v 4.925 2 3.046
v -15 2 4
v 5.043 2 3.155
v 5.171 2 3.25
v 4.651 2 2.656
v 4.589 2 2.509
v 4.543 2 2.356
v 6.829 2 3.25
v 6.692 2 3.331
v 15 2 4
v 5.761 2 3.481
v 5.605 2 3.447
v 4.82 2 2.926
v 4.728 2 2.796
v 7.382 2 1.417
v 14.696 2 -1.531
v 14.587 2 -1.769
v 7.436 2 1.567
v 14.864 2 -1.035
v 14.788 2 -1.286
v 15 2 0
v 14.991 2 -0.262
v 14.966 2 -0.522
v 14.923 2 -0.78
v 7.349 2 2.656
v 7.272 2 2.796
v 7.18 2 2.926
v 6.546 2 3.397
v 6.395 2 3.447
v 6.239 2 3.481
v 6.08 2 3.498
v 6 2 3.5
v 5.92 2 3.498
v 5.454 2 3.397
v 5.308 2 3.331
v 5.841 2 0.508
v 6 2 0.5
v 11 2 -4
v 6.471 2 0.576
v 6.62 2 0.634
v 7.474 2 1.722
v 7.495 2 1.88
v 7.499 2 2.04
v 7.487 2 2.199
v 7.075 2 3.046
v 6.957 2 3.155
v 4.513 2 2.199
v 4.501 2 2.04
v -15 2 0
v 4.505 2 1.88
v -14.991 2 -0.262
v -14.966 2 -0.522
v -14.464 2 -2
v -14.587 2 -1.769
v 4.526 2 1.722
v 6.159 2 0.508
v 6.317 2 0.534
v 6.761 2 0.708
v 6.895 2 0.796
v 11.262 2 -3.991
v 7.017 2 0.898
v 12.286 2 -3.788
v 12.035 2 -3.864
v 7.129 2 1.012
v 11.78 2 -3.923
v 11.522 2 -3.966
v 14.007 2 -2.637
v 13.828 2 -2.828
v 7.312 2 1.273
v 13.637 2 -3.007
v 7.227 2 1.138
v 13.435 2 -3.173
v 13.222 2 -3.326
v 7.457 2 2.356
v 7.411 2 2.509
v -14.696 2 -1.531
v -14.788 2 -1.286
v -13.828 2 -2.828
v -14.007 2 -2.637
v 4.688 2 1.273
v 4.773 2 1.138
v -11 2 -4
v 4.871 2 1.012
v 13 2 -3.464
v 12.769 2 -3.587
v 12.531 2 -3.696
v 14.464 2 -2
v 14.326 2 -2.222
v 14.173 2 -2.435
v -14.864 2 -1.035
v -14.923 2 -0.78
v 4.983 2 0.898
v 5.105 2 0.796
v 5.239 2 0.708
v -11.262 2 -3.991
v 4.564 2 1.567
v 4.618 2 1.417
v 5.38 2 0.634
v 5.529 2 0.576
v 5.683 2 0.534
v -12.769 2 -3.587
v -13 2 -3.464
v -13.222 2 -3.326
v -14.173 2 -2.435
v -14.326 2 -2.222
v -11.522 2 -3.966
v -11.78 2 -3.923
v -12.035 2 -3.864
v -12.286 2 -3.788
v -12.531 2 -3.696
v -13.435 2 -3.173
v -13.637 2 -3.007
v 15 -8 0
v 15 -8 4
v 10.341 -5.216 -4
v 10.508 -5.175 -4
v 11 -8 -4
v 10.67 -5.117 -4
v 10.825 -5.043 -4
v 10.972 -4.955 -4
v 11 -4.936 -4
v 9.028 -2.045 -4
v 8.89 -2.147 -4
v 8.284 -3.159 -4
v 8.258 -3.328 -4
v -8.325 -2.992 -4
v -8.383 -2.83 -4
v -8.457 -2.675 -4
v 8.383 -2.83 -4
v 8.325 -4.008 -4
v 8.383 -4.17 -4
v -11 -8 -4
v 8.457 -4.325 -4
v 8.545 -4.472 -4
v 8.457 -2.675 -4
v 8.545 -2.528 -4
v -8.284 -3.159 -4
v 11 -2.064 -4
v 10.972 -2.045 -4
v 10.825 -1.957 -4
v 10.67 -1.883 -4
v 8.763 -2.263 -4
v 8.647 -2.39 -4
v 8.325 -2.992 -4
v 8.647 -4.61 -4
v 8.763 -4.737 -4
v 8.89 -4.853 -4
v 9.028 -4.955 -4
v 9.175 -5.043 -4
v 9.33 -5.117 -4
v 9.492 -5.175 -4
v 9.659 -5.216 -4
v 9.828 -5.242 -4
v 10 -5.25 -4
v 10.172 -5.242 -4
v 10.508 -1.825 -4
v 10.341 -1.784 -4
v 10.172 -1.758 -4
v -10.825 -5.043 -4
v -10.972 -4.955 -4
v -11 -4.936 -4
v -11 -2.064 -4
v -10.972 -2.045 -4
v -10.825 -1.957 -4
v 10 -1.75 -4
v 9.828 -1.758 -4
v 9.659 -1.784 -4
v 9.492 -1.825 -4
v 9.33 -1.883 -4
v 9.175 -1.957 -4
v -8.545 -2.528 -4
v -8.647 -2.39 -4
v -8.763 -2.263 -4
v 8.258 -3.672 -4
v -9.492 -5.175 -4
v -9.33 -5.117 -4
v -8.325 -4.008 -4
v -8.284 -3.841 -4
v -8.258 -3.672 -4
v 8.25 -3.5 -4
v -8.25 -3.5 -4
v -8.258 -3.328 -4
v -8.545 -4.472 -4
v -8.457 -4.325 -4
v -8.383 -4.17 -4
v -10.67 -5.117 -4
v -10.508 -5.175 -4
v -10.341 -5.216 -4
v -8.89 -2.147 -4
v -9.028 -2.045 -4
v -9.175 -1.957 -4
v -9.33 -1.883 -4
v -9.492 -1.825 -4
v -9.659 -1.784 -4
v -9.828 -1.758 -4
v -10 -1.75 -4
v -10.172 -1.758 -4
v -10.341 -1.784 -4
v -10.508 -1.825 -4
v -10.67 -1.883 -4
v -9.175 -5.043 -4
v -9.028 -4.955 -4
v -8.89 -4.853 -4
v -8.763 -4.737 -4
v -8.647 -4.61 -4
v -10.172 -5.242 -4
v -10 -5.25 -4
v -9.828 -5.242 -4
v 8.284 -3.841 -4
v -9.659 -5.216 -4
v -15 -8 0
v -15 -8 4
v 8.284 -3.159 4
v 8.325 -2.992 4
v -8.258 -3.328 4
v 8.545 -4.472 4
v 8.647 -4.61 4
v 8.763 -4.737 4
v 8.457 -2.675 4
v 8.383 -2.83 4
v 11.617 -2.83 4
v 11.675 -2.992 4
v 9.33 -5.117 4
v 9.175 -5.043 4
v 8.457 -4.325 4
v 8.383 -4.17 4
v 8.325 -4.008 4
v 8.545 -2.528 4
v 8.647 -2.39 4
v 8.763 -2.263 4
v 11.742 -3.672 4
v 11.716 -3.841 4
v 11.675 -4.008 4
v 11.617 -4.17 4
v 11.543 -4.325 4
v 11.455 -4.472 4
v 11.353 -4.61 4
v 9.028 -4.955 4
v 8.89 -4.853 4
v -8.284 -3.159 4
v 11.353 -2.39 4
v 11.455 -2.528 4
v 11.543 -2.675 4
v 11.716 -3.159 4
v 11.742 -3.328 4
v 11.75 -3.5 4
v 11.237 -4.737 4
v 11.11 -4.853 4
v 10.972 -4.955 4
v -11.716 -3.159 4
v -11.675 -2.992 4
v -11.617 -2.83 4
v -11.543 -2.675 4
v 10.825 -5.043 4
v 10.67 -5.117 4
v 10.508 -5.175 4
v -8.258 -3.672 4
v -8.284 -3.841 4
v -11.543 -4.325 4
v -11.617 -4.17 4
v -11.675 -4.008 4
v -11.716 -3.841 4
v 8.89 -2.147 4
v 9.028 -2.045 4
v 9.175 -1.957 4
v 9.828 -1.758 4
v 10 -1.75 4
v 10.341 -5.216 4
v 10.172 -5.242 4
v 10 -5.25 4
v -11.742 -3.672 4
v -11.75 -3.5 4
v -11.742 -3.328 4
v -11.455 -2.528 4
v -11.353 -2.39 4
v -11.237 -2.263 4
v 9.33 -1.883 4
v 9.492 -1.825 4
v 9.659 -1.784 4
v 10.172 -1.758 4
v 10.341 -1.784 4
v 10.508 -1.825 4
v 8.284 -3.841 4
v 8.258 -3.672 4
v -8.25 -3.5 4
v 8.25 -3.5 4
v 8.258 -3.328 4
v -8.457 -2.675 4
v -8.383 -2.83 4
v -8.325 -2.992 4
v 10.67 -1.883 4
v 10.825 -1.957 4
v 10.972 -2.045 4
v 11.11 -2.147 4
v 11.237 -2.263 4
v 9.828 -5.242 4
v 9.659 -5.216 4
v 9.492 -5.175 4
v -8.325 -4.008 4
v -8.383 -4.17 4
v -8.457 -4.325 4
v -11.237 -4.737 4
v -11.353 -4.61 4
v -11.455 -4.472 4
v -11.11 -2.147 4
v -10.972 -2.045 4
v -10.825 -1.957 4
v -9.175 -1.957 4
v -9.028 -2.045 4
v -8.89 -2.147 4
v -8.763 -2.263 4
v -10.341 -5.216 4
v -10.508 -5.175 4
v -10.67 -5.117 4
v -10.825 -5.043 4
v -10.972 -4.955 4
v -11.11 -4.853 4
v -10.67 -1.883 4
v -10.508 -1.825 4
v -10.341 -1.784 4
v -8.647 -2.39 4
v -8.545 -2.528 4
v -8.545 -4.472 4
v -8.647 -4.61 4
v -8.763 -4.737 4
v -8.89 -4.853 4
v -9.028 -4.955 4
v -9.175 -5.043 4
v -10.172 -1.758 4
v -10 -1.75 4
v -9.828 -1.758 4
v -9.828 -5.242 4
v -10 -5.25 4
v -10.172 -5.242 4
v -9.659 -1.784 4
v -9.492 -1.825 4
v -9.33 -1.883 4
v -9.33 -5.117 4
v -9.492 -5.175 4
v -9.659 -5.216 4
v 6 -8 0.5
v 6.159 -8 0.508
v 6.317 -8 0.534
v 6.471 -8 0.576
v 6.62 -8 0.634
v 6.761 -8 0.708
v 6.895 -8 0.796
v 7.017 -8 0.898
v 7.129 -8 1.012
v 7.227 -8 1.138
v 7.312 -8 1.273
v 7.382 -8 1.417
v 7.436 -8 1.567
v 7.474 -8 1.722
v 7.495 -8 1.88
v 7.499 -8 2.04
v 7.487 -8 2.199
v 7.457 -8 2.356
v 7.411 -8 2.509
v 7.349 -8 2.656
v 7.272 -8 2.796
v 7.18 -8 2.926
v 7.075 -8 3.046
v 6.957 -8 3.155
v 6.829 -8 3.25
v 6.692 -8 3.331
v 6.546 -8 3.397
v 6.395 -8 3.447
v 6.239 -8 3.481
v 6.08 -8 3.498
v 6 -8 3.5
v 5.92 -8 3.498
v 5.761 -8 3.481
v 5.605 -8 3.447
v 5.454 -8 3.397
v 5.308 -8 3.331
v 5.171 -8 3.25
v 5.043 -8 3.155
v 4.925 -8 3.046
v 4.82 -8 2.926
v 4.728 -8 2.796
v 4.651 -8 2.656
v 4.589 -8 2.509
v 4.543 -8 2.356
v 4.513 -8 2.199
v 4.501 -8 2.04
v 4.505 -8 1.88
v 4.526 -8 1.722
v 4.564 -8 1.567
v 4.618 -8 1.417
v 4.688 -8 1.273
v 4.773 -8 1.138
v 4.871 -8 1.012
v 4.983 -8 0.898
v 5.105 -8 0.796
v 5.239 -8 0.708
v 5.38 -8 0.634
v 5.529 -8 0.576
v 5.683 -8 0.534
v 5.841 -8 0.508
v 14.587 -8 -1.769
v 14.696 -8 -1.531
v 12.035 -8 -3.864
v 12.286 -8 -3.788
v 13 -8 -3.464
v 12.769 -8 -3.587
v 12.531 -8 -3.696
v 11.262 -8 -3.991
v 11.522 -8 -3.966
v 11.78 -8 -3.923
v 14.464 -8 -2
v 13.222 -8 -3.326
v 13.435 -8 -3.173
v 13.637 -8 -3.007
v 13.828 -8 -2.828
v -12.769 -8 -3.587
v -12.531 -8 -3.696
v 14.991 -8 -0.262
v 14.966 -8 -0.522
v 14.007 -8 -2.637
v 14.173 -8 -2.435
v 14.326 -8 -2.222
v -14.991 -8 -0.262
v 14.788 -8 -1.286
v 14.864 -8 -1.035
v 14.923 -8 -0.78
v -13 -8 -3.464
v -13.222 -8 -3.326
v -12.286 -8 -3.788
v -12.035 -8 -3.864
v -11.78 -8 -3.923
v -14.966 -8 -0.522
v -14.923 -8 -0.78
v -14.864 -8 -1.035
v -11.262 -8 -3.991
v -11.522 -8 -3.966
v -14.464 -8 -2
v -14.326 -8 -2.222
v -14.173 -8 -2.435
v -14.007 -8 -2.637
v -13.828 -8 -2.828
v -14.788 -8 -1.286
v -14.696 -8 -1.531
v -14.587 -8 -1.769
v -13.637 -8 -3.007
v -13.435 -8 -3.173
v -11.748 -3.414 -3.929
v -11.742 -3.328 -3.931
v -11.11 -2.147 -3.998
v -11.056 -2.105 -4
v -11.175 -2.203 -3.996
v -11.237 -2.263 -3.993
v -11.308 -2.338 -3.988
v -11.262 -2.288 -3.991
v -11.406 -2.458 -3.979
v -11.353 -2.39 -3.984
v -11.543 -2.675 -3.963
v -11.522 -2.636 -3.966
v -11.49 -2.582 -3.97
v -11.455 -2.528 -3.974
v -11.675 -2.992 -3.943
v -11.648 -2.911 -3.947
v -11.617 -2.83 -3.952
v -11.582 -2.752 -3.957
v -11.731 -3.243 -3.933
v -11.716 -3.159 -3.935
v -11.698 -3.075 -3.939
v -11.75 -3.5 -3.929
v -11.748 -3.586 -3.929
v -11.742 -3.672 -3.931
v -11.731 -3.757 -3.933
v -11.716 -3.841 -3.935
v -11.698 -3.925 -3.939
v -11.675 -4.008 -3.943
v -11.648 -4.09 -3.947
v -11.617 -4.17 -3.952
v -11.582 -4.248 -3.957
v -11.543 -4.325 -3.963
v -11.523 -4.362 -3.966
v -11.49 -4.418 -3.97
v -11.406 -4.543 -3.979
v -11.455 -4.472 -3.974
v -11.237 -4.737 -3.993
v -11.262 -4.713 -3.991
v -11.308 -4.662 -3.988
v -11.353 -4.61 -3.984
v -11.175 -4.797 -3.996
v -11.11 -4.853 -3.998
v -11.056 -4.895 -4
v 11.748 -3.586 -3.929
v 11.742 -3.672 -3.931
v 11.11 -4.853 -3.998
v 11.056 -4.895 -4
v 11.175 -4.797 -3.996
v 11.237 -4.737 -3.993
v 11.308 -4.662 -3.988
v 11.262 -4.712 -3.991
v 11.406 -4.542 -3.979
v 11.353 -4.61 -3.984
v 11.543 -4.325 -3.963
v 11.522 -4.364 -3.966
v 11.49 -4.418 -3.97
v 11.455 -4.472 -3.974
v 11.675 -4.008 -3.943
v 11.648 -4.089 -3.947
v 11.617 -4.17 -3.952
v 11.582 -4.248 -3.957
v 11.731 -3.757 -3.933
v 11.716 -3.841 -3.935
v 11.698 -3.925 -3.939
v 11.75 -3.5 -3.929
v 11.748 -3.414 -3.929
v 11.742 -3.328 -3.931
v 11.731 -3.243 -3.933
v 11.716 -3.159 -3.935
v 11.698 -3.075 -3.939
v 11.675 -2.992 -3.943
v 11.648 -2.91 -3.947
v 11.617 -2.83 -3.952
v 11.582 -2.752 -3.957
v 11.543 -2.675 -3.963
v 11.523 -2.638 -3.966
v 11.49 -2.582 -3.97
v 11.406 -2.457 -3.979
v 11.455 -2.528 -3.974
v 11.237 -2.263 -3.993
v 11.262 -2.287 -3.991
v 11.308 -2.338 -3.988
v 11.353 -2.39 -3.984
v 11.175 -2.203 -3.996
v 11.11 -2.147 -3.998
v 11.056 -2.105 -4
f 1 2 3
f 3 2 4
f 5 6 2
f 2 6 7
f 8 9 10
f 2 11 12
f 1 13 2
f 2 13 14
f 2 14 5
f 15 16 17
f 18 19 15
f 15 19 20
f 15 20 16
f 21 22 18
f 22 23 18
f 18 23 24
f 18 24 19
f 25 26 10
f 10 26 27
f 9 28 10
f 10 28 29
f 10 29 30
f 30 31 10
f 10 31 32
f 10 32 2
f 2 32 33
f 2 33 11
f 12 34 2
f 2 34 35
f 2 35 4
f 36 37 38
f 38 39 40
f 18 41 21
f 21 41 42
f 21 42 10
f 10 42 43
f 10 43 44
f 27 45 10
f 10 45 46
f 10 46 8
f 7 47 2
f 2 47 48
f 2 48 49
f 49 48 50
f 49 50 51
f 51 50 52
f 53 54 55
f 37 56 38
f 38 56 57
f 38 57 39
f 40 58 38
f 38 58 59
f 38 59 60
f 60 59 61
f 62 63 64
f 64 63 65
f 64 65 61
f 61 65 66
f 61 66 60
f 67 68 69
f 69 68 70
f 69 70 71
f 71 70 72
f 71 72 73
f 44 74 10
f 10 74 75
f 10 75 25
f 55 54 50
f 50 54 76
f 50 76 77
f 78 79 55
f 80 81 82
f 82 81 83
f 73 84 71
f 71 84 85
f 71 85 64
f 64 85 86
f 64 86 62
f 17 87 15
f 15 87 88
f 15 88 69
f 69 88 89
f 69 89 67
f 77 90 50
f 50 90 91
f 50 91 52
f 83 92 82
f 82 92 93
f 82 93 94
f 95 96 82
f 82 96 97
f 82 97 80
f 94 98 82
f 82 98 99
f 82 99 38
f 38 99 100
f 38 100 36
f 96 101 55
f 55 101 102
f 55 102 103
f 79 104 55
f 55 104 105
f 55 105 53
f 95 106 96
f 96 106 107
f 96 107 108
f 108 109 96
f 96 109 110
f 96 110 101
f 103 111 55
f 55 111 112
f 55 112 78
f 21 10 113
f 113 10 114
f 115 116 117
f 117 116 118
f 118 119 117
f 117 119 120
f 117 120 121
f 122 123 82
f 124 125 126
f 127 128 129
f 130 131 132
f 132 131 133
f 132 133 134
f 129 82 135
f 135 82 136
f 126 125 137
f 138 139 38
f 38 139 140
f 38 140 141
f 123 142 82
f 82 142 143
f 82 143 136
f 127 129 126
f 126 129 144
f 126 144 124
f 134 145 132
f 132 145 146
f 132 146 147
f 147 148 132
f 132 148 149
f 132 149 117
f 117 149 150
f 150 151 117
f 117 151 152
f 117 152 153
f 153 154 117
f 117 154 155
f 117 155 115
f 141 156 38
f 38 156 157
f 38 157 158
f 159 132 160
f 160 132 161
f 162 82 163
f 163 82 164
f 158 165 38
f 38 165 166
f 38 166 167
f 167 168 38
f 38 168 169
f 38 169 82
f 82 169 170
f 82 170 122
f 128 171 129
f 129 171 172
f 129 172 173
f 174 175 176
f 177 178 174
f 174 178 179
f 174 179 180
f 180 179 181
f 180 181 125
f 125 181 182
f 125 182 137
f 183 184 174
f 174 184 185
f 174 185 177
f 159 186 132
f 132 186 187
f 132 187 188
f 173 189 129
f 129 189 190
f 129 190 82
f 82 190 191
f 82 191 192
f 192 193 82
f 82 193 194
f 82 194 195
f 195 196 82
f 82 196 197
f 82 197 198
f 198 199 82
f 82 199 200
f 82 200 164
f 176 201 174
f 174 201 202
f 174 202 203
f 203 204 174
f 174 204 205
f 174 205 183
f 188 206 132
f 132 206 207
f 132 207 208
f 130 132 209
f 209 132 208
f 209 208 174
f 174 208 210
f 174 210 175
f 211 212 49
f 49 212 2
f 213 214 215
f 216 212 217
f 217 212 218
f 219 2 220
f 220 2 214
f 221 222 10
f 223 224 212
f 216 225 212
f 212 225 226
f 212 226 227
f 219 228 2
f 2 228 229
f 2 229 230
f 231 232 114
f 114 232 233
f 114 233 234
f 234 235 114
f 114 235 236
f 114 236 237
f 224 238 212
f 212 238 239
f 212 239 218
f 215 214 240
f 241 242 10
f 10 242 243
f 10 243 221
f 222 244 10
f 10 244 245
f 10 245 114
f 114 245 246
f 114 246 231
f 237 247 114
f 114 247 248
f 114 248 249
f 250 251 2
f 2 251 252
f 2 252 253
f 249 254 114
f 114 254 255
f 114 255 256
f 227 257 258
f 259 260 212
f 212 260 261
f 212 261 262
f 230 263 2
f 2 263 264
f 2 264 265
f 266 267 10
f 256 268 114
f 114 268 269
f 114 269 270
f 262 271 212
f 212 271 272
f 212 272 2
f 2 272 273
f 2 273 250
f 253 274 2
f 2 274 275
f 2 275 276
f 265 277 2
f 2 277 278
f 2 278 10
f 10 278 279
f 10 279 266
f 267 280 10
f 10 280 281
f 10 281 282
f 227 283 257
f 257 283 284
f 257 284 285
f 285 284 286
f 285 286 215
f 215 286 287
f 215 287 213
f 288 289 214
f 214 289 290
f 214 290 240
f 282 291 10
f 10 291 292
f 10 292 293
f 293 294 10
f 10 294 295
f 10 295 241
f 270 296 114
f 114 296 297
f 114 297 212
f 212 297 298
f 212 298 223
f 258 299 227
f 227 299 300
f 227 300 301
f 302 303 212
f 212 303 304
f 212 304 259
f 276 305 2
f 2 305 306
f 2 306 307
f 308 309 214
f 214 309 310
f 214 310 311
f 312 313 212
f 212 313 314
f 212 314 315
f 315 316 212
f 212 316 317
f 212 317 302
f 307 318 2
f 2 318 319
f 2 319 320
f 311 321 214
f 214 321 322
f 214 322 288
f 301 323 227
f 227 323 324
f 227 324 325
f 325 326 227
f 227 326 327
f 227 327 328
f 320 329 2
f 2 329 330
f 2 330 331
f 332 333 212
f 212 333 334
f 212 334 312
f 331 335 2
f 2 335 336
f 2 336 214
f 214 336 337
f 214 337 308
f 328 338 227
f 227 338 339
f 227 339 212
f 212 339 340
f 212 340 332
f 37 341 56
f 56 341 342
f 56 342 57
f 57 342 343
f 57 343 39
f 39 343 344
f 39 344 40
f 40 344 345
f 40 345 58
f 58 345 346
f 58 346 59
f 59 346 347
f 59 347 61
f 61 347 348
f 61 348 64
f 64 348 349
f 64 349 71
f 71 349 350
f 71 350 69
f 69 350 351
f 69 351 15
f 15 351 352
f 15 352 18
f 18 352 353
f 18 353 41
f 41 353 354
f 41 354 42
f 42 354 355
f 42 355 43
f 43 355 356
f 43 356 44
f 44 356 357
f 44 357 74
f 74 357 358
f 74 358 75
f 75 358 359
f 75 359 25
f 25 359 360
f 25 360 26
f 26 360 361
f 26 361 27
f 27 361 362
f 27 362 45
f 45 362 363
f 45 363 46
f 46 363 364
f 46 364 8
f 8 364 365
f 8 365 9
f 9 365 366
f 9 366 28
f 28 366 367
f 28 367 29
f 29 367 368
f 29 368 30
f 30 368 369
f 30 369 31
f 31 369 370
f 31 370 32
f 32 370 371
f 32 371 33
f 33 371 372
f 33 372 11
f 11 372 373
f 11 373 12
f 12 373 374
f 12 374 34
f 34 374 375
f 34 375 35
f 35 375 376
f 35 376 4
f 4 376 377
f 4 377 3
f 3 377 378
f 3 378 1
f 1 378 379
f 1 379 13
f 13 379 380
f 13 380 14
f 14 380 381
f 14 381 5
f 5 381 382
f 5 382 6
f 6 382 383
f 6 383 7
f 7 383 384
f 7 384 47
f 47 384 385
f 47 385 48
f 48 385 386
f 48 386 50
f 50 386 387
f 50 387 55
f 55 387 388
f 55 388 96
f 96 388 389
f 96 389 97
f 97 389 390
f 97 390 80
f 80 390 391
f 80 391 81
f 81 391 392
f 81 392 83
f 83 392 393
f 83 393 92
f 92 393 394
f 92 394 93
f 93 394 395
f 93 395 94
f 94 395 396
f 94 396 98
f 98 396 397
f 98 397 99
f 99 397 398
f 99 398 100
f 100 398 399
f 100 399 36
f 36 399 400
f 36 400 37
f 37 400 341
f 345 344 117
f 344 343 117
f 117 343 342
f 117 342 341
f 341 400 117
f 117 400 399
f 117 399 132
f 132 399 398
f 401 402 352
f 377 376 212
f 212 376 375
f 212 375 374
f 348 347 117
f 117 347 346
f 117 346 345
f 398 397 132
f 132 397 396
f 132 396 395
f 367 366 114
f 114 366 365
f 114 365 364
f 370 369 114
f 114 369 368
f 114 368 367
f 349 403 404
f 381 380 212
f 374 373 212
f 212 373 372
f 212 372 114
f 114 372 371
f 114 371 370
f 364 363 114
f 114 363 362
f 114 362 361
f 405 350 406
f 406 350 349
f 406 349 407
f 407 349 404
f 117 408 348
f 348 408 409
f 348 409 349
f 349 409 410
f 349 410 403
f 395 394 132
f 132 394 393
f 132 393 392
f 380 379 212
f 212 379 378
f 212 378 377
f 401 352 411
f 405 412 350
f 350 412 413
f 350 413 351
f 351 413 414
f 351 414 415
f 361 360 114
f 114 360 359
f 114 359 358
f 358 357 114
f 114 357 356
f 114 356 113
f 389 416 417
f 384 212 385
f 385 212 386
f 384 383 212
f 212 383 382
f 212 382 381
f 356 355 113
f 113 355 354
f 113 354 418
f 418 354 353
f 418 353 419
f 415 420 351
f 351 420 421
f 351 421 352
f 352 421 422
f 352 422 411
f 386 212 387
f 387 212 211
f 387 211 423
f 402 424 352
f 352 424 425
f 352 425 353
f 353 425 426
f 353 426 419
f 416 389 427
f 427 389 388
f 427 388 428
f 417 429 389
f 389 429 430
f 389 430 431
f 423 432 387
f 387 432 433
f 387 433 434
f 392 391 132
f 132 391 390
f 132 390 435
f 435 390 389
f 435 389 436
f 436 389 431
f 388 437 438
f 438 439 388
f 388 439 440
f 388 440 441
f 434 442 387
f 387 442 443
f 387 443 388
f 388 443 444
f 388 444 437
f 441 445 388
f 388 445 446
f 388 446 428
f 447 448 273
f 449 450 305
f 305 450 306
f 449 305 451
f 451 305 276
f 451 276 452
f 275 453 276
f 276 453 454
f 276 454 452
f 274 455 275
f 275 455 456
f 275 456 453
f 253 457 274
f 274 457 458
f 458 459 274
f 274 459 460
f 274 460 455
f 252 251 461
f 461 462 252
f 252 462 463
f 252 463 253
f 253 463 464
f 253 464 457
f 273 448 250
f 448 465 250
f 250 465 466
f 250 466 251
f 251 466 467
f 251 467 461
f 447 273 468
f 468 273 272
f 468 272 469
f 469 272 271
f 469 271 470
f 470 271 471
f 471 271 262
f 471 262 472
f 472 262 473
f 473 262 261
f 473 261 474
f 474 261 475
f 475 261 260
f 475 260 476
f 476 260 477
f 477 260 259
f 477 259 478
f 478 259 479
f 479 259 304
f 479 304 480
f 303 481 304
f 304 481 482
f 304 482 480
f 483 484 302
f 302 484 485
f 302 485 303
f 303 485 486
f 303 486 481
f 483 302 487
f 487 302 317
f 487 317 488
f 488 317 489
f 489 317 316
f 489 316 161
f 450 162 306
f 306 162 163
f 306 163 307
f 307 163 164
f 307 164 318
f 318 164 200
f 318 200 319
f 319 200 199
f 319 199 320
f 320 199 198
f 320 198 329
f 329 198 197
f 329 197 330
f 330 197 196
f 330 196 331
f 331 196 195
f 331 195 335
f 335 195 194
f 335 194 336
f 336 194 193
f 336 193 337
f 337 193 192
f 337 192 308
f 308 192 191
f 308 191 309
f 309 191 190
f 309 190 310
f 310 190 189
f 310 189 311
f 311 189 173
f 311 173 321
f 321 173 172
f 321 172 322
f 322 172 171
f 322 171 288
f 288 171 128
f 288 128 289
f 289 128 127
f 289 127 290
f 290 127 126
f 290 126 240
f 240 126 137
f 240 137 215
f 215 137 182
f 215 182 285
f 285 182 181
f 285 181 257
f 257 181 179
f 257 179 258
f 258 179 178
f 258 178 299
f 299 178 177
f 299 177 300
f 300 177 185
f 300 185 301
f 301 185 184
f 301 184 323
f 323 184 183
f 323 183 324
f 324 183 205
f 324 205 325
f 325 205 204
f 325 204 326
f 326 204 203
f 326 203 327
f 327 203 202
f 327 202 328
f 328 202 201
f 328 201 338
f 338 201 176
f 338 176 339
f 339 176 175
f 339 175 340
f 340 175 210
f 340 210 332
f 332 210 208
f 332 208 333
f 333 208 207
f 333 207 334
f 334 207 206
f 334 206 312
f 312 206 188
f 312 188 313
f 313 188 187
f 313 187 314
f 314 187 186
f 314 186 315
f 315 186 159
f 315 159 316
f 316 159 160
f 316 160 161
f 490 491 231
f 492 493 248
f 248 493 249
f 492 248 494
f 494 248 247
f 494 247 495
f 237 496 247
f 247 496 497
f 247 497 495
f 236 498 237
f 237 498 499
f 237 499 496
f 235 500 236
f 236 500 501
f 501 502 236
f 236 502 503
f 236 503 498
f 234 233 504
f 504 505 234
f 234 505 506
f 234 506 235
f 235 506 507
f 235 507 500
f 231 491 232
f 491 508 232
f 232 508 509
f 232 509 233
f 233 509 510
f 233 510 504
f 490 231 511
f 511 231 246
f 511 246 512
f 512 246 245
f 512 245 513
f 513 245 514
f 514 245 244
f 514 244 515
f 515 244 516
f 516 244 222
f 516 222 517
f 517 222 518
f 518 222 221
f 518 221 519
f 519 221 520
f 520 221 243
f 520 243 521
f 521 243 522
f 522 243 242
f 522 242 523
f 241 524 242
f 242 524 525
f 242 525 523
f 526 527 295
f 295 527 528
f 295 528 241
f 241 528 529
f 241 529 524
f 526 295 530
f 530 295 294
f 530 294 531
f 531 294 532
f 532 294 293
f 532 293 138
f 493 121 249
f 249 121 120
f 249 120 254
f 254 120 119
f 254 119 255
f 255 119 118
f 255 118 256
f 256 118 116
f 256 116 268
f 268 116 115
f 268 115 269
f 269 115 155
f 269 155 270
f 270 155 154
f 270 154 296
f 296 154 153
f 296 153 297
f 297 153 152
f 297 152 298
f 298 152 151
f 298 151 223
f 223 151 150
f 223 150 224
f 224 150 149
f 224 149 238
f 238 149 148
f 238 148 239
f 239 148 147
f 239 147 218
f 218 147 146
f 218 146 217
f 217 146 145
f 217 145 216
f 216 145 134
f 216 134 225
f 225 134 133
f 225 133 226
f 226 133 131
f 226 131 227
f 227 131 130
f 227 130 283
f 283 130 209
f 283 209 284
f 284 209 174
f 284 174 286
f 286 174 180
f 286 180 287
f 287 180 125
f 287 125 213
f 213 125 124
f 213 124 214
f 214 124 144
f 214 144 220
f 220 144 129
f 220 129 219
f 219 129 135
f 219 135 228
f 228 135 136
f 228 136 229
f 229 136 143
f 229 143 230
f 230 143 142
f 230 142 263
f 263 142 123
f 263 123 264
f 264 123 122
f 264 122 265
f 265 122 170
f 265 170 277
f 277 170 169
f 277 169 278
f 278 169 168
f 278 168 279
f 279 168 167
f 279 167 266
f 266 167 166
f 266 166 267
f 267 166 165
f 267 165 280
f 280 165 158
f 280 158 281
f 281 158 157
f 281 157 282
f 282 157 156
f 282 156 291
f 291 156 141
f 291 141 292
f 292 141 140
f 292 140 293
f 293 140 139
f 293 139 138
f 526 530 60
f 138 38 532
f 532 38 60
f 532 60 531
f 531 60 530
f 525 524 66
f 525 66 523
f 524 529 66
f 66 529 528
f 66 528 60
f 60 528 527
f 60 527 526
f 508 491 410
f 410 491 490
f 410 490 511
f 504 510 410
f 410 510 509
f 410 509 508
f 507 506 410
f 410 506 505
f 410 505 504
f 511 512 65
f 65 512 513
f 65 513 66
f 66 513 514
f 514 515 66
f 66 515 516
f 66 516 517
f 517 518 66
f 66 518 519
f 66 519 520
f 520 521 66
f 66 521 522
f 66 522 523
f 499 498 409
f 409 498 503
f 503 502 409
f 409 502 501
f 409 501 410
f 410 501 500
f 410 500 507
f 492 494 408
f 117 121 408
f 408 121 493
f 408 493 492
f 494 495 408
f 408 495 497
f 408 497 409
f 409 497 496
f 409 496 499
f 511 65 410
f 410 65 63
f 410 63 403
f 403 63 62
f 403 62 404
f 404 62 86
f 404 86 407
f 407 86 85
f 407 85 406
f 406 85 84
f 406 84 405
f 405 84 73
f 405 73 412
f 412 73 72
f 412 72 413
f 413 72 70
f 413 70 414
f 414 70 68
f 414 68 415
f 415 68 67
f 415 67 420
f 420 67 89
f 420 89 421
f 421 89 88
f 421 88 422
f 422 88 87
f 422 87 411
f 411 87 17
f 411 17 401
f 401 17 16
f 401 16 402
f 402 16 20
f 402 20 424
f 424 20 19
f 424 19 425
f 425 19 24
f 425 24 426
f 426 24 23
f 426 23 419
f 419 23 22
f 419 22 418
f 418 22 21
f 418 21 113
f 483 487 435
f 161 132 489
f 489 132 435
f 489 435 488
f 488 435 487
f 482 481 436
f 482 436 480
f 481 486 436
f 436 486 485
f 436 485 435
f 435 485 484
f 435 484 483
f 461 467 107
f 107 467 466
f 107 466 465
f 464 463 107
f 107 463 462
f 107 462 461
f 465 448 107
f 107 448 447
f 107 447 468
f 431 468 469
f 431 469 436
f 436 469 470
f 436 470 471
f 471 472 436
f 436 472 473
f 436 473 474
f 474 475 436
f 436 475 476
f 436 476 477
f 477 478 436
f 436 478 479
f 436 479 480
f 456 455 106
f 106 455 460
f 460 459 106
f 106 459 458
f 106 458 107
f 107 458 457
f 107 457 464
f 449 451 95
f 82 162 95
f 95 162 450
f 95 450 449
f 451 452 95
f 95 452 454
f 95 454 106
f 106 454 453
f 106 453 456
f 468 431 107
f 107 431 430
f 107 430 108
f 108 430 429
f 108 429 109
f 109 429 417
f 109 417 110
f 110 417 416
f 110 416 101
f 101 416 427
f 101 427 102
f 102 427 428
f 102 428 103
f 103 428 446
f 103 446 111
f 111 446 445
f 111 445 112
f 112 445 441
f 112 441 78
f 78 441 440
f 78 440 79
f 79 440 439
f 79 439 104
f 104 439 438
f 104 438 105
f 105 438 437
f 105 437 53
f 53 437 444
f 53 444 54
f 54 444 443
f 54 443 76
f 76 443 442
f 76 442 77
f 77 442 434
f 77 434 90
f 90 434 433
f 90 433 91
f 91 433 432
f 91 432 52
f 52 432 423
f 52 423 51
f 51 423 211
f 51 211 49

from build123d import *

# Parameters (mm, degrees)
SKETCH1_W           = 30
SKETCH1_H           = 8
SKETCH1_R           = 1.5
BOSS_EXTRUDE1_DEPTH = 2
SKETCH2_R           = 1.75
BOSS_EXTRUDE2_DEPTH = 8
SKETCH4_R           = 1.5
CUT_EXTRUDE2_DEPTH  = 18.464249197
FILLET1_R           = 4


with BuildPart() as part:
    # Sketch1 → Boss-Extrude1 (new body)
    with BuildSketch(Plane(origin=(0, 0, 0), x_dir=(1, 0, 0), z_dir=(0, 1, 0))):
        Rectangle(SKETCH1_W, SKETCH1_H)
        with Locations(Location((6, -2, 0), (0, 0, 270))):
            Circle(SKETCH1_R, mode=Mode.SUBTRACT)
    extrude(amount=BOSS_EXTRUDE1_DEPTH)

    # Sketch2 → Boss-Extrude2 (add)
    with BuildSketch(Plane.XY.offset(4)):
        Polygon((-15, 0), (-15, -8), (15, -8), (15, 0), (5, 0), align=None)
        with Locations((-10, -3.5)):
            Circle(SKETCH2_R, mode=Mode.SUBTRACT)
        with Locations((10, -3.5)):
            Circle(SKETCH2_R, mode=Mode.SUBTRACT)
    extrude(amount=-BOSS_EXTRUDE2_DEPTH)

    # Sketch4 → Cut-Extrude2 (cut, through all)
    with BuildSketch(Plane(origin=(0, 0, 0), x_dir=(1, 0, 0), z_dir=(0, 1, 0))):
        with Locations(Location((6, -2, 0), (0, 0, 270))):
            Circle(SKETCH4_R)
    extrude(amount=-CUT_EXTRUDE2_DEPTH, mode=Mode.SUBTRACT)

    # Fillet1
    # the kernel refuses this fillet: 4 mm, written as the material it takes off along each edge
    with BuildSketch(Plane(origin=(-15, -18, -4), x_dir=(1, 0, 0), z_dir=(0, 1, 0)), Plane(origin=(15, 12, -4), x_dir=(-1, 0, 0), z_dir=(0, -1, 0))) as fillet1_piece_1:
        with BuildLine():
            CenterArc((FILLET1_R, -FILLET1_R), FILLET1_R, 90, 90)
            Line((0, -FILLET1_R), (0, 0))
            Line((0, 0), (FILLET1_R, 0))
        make_face()
    extrude(amount=30, mode=Mode.SUBTRACT)


solid = part.part
